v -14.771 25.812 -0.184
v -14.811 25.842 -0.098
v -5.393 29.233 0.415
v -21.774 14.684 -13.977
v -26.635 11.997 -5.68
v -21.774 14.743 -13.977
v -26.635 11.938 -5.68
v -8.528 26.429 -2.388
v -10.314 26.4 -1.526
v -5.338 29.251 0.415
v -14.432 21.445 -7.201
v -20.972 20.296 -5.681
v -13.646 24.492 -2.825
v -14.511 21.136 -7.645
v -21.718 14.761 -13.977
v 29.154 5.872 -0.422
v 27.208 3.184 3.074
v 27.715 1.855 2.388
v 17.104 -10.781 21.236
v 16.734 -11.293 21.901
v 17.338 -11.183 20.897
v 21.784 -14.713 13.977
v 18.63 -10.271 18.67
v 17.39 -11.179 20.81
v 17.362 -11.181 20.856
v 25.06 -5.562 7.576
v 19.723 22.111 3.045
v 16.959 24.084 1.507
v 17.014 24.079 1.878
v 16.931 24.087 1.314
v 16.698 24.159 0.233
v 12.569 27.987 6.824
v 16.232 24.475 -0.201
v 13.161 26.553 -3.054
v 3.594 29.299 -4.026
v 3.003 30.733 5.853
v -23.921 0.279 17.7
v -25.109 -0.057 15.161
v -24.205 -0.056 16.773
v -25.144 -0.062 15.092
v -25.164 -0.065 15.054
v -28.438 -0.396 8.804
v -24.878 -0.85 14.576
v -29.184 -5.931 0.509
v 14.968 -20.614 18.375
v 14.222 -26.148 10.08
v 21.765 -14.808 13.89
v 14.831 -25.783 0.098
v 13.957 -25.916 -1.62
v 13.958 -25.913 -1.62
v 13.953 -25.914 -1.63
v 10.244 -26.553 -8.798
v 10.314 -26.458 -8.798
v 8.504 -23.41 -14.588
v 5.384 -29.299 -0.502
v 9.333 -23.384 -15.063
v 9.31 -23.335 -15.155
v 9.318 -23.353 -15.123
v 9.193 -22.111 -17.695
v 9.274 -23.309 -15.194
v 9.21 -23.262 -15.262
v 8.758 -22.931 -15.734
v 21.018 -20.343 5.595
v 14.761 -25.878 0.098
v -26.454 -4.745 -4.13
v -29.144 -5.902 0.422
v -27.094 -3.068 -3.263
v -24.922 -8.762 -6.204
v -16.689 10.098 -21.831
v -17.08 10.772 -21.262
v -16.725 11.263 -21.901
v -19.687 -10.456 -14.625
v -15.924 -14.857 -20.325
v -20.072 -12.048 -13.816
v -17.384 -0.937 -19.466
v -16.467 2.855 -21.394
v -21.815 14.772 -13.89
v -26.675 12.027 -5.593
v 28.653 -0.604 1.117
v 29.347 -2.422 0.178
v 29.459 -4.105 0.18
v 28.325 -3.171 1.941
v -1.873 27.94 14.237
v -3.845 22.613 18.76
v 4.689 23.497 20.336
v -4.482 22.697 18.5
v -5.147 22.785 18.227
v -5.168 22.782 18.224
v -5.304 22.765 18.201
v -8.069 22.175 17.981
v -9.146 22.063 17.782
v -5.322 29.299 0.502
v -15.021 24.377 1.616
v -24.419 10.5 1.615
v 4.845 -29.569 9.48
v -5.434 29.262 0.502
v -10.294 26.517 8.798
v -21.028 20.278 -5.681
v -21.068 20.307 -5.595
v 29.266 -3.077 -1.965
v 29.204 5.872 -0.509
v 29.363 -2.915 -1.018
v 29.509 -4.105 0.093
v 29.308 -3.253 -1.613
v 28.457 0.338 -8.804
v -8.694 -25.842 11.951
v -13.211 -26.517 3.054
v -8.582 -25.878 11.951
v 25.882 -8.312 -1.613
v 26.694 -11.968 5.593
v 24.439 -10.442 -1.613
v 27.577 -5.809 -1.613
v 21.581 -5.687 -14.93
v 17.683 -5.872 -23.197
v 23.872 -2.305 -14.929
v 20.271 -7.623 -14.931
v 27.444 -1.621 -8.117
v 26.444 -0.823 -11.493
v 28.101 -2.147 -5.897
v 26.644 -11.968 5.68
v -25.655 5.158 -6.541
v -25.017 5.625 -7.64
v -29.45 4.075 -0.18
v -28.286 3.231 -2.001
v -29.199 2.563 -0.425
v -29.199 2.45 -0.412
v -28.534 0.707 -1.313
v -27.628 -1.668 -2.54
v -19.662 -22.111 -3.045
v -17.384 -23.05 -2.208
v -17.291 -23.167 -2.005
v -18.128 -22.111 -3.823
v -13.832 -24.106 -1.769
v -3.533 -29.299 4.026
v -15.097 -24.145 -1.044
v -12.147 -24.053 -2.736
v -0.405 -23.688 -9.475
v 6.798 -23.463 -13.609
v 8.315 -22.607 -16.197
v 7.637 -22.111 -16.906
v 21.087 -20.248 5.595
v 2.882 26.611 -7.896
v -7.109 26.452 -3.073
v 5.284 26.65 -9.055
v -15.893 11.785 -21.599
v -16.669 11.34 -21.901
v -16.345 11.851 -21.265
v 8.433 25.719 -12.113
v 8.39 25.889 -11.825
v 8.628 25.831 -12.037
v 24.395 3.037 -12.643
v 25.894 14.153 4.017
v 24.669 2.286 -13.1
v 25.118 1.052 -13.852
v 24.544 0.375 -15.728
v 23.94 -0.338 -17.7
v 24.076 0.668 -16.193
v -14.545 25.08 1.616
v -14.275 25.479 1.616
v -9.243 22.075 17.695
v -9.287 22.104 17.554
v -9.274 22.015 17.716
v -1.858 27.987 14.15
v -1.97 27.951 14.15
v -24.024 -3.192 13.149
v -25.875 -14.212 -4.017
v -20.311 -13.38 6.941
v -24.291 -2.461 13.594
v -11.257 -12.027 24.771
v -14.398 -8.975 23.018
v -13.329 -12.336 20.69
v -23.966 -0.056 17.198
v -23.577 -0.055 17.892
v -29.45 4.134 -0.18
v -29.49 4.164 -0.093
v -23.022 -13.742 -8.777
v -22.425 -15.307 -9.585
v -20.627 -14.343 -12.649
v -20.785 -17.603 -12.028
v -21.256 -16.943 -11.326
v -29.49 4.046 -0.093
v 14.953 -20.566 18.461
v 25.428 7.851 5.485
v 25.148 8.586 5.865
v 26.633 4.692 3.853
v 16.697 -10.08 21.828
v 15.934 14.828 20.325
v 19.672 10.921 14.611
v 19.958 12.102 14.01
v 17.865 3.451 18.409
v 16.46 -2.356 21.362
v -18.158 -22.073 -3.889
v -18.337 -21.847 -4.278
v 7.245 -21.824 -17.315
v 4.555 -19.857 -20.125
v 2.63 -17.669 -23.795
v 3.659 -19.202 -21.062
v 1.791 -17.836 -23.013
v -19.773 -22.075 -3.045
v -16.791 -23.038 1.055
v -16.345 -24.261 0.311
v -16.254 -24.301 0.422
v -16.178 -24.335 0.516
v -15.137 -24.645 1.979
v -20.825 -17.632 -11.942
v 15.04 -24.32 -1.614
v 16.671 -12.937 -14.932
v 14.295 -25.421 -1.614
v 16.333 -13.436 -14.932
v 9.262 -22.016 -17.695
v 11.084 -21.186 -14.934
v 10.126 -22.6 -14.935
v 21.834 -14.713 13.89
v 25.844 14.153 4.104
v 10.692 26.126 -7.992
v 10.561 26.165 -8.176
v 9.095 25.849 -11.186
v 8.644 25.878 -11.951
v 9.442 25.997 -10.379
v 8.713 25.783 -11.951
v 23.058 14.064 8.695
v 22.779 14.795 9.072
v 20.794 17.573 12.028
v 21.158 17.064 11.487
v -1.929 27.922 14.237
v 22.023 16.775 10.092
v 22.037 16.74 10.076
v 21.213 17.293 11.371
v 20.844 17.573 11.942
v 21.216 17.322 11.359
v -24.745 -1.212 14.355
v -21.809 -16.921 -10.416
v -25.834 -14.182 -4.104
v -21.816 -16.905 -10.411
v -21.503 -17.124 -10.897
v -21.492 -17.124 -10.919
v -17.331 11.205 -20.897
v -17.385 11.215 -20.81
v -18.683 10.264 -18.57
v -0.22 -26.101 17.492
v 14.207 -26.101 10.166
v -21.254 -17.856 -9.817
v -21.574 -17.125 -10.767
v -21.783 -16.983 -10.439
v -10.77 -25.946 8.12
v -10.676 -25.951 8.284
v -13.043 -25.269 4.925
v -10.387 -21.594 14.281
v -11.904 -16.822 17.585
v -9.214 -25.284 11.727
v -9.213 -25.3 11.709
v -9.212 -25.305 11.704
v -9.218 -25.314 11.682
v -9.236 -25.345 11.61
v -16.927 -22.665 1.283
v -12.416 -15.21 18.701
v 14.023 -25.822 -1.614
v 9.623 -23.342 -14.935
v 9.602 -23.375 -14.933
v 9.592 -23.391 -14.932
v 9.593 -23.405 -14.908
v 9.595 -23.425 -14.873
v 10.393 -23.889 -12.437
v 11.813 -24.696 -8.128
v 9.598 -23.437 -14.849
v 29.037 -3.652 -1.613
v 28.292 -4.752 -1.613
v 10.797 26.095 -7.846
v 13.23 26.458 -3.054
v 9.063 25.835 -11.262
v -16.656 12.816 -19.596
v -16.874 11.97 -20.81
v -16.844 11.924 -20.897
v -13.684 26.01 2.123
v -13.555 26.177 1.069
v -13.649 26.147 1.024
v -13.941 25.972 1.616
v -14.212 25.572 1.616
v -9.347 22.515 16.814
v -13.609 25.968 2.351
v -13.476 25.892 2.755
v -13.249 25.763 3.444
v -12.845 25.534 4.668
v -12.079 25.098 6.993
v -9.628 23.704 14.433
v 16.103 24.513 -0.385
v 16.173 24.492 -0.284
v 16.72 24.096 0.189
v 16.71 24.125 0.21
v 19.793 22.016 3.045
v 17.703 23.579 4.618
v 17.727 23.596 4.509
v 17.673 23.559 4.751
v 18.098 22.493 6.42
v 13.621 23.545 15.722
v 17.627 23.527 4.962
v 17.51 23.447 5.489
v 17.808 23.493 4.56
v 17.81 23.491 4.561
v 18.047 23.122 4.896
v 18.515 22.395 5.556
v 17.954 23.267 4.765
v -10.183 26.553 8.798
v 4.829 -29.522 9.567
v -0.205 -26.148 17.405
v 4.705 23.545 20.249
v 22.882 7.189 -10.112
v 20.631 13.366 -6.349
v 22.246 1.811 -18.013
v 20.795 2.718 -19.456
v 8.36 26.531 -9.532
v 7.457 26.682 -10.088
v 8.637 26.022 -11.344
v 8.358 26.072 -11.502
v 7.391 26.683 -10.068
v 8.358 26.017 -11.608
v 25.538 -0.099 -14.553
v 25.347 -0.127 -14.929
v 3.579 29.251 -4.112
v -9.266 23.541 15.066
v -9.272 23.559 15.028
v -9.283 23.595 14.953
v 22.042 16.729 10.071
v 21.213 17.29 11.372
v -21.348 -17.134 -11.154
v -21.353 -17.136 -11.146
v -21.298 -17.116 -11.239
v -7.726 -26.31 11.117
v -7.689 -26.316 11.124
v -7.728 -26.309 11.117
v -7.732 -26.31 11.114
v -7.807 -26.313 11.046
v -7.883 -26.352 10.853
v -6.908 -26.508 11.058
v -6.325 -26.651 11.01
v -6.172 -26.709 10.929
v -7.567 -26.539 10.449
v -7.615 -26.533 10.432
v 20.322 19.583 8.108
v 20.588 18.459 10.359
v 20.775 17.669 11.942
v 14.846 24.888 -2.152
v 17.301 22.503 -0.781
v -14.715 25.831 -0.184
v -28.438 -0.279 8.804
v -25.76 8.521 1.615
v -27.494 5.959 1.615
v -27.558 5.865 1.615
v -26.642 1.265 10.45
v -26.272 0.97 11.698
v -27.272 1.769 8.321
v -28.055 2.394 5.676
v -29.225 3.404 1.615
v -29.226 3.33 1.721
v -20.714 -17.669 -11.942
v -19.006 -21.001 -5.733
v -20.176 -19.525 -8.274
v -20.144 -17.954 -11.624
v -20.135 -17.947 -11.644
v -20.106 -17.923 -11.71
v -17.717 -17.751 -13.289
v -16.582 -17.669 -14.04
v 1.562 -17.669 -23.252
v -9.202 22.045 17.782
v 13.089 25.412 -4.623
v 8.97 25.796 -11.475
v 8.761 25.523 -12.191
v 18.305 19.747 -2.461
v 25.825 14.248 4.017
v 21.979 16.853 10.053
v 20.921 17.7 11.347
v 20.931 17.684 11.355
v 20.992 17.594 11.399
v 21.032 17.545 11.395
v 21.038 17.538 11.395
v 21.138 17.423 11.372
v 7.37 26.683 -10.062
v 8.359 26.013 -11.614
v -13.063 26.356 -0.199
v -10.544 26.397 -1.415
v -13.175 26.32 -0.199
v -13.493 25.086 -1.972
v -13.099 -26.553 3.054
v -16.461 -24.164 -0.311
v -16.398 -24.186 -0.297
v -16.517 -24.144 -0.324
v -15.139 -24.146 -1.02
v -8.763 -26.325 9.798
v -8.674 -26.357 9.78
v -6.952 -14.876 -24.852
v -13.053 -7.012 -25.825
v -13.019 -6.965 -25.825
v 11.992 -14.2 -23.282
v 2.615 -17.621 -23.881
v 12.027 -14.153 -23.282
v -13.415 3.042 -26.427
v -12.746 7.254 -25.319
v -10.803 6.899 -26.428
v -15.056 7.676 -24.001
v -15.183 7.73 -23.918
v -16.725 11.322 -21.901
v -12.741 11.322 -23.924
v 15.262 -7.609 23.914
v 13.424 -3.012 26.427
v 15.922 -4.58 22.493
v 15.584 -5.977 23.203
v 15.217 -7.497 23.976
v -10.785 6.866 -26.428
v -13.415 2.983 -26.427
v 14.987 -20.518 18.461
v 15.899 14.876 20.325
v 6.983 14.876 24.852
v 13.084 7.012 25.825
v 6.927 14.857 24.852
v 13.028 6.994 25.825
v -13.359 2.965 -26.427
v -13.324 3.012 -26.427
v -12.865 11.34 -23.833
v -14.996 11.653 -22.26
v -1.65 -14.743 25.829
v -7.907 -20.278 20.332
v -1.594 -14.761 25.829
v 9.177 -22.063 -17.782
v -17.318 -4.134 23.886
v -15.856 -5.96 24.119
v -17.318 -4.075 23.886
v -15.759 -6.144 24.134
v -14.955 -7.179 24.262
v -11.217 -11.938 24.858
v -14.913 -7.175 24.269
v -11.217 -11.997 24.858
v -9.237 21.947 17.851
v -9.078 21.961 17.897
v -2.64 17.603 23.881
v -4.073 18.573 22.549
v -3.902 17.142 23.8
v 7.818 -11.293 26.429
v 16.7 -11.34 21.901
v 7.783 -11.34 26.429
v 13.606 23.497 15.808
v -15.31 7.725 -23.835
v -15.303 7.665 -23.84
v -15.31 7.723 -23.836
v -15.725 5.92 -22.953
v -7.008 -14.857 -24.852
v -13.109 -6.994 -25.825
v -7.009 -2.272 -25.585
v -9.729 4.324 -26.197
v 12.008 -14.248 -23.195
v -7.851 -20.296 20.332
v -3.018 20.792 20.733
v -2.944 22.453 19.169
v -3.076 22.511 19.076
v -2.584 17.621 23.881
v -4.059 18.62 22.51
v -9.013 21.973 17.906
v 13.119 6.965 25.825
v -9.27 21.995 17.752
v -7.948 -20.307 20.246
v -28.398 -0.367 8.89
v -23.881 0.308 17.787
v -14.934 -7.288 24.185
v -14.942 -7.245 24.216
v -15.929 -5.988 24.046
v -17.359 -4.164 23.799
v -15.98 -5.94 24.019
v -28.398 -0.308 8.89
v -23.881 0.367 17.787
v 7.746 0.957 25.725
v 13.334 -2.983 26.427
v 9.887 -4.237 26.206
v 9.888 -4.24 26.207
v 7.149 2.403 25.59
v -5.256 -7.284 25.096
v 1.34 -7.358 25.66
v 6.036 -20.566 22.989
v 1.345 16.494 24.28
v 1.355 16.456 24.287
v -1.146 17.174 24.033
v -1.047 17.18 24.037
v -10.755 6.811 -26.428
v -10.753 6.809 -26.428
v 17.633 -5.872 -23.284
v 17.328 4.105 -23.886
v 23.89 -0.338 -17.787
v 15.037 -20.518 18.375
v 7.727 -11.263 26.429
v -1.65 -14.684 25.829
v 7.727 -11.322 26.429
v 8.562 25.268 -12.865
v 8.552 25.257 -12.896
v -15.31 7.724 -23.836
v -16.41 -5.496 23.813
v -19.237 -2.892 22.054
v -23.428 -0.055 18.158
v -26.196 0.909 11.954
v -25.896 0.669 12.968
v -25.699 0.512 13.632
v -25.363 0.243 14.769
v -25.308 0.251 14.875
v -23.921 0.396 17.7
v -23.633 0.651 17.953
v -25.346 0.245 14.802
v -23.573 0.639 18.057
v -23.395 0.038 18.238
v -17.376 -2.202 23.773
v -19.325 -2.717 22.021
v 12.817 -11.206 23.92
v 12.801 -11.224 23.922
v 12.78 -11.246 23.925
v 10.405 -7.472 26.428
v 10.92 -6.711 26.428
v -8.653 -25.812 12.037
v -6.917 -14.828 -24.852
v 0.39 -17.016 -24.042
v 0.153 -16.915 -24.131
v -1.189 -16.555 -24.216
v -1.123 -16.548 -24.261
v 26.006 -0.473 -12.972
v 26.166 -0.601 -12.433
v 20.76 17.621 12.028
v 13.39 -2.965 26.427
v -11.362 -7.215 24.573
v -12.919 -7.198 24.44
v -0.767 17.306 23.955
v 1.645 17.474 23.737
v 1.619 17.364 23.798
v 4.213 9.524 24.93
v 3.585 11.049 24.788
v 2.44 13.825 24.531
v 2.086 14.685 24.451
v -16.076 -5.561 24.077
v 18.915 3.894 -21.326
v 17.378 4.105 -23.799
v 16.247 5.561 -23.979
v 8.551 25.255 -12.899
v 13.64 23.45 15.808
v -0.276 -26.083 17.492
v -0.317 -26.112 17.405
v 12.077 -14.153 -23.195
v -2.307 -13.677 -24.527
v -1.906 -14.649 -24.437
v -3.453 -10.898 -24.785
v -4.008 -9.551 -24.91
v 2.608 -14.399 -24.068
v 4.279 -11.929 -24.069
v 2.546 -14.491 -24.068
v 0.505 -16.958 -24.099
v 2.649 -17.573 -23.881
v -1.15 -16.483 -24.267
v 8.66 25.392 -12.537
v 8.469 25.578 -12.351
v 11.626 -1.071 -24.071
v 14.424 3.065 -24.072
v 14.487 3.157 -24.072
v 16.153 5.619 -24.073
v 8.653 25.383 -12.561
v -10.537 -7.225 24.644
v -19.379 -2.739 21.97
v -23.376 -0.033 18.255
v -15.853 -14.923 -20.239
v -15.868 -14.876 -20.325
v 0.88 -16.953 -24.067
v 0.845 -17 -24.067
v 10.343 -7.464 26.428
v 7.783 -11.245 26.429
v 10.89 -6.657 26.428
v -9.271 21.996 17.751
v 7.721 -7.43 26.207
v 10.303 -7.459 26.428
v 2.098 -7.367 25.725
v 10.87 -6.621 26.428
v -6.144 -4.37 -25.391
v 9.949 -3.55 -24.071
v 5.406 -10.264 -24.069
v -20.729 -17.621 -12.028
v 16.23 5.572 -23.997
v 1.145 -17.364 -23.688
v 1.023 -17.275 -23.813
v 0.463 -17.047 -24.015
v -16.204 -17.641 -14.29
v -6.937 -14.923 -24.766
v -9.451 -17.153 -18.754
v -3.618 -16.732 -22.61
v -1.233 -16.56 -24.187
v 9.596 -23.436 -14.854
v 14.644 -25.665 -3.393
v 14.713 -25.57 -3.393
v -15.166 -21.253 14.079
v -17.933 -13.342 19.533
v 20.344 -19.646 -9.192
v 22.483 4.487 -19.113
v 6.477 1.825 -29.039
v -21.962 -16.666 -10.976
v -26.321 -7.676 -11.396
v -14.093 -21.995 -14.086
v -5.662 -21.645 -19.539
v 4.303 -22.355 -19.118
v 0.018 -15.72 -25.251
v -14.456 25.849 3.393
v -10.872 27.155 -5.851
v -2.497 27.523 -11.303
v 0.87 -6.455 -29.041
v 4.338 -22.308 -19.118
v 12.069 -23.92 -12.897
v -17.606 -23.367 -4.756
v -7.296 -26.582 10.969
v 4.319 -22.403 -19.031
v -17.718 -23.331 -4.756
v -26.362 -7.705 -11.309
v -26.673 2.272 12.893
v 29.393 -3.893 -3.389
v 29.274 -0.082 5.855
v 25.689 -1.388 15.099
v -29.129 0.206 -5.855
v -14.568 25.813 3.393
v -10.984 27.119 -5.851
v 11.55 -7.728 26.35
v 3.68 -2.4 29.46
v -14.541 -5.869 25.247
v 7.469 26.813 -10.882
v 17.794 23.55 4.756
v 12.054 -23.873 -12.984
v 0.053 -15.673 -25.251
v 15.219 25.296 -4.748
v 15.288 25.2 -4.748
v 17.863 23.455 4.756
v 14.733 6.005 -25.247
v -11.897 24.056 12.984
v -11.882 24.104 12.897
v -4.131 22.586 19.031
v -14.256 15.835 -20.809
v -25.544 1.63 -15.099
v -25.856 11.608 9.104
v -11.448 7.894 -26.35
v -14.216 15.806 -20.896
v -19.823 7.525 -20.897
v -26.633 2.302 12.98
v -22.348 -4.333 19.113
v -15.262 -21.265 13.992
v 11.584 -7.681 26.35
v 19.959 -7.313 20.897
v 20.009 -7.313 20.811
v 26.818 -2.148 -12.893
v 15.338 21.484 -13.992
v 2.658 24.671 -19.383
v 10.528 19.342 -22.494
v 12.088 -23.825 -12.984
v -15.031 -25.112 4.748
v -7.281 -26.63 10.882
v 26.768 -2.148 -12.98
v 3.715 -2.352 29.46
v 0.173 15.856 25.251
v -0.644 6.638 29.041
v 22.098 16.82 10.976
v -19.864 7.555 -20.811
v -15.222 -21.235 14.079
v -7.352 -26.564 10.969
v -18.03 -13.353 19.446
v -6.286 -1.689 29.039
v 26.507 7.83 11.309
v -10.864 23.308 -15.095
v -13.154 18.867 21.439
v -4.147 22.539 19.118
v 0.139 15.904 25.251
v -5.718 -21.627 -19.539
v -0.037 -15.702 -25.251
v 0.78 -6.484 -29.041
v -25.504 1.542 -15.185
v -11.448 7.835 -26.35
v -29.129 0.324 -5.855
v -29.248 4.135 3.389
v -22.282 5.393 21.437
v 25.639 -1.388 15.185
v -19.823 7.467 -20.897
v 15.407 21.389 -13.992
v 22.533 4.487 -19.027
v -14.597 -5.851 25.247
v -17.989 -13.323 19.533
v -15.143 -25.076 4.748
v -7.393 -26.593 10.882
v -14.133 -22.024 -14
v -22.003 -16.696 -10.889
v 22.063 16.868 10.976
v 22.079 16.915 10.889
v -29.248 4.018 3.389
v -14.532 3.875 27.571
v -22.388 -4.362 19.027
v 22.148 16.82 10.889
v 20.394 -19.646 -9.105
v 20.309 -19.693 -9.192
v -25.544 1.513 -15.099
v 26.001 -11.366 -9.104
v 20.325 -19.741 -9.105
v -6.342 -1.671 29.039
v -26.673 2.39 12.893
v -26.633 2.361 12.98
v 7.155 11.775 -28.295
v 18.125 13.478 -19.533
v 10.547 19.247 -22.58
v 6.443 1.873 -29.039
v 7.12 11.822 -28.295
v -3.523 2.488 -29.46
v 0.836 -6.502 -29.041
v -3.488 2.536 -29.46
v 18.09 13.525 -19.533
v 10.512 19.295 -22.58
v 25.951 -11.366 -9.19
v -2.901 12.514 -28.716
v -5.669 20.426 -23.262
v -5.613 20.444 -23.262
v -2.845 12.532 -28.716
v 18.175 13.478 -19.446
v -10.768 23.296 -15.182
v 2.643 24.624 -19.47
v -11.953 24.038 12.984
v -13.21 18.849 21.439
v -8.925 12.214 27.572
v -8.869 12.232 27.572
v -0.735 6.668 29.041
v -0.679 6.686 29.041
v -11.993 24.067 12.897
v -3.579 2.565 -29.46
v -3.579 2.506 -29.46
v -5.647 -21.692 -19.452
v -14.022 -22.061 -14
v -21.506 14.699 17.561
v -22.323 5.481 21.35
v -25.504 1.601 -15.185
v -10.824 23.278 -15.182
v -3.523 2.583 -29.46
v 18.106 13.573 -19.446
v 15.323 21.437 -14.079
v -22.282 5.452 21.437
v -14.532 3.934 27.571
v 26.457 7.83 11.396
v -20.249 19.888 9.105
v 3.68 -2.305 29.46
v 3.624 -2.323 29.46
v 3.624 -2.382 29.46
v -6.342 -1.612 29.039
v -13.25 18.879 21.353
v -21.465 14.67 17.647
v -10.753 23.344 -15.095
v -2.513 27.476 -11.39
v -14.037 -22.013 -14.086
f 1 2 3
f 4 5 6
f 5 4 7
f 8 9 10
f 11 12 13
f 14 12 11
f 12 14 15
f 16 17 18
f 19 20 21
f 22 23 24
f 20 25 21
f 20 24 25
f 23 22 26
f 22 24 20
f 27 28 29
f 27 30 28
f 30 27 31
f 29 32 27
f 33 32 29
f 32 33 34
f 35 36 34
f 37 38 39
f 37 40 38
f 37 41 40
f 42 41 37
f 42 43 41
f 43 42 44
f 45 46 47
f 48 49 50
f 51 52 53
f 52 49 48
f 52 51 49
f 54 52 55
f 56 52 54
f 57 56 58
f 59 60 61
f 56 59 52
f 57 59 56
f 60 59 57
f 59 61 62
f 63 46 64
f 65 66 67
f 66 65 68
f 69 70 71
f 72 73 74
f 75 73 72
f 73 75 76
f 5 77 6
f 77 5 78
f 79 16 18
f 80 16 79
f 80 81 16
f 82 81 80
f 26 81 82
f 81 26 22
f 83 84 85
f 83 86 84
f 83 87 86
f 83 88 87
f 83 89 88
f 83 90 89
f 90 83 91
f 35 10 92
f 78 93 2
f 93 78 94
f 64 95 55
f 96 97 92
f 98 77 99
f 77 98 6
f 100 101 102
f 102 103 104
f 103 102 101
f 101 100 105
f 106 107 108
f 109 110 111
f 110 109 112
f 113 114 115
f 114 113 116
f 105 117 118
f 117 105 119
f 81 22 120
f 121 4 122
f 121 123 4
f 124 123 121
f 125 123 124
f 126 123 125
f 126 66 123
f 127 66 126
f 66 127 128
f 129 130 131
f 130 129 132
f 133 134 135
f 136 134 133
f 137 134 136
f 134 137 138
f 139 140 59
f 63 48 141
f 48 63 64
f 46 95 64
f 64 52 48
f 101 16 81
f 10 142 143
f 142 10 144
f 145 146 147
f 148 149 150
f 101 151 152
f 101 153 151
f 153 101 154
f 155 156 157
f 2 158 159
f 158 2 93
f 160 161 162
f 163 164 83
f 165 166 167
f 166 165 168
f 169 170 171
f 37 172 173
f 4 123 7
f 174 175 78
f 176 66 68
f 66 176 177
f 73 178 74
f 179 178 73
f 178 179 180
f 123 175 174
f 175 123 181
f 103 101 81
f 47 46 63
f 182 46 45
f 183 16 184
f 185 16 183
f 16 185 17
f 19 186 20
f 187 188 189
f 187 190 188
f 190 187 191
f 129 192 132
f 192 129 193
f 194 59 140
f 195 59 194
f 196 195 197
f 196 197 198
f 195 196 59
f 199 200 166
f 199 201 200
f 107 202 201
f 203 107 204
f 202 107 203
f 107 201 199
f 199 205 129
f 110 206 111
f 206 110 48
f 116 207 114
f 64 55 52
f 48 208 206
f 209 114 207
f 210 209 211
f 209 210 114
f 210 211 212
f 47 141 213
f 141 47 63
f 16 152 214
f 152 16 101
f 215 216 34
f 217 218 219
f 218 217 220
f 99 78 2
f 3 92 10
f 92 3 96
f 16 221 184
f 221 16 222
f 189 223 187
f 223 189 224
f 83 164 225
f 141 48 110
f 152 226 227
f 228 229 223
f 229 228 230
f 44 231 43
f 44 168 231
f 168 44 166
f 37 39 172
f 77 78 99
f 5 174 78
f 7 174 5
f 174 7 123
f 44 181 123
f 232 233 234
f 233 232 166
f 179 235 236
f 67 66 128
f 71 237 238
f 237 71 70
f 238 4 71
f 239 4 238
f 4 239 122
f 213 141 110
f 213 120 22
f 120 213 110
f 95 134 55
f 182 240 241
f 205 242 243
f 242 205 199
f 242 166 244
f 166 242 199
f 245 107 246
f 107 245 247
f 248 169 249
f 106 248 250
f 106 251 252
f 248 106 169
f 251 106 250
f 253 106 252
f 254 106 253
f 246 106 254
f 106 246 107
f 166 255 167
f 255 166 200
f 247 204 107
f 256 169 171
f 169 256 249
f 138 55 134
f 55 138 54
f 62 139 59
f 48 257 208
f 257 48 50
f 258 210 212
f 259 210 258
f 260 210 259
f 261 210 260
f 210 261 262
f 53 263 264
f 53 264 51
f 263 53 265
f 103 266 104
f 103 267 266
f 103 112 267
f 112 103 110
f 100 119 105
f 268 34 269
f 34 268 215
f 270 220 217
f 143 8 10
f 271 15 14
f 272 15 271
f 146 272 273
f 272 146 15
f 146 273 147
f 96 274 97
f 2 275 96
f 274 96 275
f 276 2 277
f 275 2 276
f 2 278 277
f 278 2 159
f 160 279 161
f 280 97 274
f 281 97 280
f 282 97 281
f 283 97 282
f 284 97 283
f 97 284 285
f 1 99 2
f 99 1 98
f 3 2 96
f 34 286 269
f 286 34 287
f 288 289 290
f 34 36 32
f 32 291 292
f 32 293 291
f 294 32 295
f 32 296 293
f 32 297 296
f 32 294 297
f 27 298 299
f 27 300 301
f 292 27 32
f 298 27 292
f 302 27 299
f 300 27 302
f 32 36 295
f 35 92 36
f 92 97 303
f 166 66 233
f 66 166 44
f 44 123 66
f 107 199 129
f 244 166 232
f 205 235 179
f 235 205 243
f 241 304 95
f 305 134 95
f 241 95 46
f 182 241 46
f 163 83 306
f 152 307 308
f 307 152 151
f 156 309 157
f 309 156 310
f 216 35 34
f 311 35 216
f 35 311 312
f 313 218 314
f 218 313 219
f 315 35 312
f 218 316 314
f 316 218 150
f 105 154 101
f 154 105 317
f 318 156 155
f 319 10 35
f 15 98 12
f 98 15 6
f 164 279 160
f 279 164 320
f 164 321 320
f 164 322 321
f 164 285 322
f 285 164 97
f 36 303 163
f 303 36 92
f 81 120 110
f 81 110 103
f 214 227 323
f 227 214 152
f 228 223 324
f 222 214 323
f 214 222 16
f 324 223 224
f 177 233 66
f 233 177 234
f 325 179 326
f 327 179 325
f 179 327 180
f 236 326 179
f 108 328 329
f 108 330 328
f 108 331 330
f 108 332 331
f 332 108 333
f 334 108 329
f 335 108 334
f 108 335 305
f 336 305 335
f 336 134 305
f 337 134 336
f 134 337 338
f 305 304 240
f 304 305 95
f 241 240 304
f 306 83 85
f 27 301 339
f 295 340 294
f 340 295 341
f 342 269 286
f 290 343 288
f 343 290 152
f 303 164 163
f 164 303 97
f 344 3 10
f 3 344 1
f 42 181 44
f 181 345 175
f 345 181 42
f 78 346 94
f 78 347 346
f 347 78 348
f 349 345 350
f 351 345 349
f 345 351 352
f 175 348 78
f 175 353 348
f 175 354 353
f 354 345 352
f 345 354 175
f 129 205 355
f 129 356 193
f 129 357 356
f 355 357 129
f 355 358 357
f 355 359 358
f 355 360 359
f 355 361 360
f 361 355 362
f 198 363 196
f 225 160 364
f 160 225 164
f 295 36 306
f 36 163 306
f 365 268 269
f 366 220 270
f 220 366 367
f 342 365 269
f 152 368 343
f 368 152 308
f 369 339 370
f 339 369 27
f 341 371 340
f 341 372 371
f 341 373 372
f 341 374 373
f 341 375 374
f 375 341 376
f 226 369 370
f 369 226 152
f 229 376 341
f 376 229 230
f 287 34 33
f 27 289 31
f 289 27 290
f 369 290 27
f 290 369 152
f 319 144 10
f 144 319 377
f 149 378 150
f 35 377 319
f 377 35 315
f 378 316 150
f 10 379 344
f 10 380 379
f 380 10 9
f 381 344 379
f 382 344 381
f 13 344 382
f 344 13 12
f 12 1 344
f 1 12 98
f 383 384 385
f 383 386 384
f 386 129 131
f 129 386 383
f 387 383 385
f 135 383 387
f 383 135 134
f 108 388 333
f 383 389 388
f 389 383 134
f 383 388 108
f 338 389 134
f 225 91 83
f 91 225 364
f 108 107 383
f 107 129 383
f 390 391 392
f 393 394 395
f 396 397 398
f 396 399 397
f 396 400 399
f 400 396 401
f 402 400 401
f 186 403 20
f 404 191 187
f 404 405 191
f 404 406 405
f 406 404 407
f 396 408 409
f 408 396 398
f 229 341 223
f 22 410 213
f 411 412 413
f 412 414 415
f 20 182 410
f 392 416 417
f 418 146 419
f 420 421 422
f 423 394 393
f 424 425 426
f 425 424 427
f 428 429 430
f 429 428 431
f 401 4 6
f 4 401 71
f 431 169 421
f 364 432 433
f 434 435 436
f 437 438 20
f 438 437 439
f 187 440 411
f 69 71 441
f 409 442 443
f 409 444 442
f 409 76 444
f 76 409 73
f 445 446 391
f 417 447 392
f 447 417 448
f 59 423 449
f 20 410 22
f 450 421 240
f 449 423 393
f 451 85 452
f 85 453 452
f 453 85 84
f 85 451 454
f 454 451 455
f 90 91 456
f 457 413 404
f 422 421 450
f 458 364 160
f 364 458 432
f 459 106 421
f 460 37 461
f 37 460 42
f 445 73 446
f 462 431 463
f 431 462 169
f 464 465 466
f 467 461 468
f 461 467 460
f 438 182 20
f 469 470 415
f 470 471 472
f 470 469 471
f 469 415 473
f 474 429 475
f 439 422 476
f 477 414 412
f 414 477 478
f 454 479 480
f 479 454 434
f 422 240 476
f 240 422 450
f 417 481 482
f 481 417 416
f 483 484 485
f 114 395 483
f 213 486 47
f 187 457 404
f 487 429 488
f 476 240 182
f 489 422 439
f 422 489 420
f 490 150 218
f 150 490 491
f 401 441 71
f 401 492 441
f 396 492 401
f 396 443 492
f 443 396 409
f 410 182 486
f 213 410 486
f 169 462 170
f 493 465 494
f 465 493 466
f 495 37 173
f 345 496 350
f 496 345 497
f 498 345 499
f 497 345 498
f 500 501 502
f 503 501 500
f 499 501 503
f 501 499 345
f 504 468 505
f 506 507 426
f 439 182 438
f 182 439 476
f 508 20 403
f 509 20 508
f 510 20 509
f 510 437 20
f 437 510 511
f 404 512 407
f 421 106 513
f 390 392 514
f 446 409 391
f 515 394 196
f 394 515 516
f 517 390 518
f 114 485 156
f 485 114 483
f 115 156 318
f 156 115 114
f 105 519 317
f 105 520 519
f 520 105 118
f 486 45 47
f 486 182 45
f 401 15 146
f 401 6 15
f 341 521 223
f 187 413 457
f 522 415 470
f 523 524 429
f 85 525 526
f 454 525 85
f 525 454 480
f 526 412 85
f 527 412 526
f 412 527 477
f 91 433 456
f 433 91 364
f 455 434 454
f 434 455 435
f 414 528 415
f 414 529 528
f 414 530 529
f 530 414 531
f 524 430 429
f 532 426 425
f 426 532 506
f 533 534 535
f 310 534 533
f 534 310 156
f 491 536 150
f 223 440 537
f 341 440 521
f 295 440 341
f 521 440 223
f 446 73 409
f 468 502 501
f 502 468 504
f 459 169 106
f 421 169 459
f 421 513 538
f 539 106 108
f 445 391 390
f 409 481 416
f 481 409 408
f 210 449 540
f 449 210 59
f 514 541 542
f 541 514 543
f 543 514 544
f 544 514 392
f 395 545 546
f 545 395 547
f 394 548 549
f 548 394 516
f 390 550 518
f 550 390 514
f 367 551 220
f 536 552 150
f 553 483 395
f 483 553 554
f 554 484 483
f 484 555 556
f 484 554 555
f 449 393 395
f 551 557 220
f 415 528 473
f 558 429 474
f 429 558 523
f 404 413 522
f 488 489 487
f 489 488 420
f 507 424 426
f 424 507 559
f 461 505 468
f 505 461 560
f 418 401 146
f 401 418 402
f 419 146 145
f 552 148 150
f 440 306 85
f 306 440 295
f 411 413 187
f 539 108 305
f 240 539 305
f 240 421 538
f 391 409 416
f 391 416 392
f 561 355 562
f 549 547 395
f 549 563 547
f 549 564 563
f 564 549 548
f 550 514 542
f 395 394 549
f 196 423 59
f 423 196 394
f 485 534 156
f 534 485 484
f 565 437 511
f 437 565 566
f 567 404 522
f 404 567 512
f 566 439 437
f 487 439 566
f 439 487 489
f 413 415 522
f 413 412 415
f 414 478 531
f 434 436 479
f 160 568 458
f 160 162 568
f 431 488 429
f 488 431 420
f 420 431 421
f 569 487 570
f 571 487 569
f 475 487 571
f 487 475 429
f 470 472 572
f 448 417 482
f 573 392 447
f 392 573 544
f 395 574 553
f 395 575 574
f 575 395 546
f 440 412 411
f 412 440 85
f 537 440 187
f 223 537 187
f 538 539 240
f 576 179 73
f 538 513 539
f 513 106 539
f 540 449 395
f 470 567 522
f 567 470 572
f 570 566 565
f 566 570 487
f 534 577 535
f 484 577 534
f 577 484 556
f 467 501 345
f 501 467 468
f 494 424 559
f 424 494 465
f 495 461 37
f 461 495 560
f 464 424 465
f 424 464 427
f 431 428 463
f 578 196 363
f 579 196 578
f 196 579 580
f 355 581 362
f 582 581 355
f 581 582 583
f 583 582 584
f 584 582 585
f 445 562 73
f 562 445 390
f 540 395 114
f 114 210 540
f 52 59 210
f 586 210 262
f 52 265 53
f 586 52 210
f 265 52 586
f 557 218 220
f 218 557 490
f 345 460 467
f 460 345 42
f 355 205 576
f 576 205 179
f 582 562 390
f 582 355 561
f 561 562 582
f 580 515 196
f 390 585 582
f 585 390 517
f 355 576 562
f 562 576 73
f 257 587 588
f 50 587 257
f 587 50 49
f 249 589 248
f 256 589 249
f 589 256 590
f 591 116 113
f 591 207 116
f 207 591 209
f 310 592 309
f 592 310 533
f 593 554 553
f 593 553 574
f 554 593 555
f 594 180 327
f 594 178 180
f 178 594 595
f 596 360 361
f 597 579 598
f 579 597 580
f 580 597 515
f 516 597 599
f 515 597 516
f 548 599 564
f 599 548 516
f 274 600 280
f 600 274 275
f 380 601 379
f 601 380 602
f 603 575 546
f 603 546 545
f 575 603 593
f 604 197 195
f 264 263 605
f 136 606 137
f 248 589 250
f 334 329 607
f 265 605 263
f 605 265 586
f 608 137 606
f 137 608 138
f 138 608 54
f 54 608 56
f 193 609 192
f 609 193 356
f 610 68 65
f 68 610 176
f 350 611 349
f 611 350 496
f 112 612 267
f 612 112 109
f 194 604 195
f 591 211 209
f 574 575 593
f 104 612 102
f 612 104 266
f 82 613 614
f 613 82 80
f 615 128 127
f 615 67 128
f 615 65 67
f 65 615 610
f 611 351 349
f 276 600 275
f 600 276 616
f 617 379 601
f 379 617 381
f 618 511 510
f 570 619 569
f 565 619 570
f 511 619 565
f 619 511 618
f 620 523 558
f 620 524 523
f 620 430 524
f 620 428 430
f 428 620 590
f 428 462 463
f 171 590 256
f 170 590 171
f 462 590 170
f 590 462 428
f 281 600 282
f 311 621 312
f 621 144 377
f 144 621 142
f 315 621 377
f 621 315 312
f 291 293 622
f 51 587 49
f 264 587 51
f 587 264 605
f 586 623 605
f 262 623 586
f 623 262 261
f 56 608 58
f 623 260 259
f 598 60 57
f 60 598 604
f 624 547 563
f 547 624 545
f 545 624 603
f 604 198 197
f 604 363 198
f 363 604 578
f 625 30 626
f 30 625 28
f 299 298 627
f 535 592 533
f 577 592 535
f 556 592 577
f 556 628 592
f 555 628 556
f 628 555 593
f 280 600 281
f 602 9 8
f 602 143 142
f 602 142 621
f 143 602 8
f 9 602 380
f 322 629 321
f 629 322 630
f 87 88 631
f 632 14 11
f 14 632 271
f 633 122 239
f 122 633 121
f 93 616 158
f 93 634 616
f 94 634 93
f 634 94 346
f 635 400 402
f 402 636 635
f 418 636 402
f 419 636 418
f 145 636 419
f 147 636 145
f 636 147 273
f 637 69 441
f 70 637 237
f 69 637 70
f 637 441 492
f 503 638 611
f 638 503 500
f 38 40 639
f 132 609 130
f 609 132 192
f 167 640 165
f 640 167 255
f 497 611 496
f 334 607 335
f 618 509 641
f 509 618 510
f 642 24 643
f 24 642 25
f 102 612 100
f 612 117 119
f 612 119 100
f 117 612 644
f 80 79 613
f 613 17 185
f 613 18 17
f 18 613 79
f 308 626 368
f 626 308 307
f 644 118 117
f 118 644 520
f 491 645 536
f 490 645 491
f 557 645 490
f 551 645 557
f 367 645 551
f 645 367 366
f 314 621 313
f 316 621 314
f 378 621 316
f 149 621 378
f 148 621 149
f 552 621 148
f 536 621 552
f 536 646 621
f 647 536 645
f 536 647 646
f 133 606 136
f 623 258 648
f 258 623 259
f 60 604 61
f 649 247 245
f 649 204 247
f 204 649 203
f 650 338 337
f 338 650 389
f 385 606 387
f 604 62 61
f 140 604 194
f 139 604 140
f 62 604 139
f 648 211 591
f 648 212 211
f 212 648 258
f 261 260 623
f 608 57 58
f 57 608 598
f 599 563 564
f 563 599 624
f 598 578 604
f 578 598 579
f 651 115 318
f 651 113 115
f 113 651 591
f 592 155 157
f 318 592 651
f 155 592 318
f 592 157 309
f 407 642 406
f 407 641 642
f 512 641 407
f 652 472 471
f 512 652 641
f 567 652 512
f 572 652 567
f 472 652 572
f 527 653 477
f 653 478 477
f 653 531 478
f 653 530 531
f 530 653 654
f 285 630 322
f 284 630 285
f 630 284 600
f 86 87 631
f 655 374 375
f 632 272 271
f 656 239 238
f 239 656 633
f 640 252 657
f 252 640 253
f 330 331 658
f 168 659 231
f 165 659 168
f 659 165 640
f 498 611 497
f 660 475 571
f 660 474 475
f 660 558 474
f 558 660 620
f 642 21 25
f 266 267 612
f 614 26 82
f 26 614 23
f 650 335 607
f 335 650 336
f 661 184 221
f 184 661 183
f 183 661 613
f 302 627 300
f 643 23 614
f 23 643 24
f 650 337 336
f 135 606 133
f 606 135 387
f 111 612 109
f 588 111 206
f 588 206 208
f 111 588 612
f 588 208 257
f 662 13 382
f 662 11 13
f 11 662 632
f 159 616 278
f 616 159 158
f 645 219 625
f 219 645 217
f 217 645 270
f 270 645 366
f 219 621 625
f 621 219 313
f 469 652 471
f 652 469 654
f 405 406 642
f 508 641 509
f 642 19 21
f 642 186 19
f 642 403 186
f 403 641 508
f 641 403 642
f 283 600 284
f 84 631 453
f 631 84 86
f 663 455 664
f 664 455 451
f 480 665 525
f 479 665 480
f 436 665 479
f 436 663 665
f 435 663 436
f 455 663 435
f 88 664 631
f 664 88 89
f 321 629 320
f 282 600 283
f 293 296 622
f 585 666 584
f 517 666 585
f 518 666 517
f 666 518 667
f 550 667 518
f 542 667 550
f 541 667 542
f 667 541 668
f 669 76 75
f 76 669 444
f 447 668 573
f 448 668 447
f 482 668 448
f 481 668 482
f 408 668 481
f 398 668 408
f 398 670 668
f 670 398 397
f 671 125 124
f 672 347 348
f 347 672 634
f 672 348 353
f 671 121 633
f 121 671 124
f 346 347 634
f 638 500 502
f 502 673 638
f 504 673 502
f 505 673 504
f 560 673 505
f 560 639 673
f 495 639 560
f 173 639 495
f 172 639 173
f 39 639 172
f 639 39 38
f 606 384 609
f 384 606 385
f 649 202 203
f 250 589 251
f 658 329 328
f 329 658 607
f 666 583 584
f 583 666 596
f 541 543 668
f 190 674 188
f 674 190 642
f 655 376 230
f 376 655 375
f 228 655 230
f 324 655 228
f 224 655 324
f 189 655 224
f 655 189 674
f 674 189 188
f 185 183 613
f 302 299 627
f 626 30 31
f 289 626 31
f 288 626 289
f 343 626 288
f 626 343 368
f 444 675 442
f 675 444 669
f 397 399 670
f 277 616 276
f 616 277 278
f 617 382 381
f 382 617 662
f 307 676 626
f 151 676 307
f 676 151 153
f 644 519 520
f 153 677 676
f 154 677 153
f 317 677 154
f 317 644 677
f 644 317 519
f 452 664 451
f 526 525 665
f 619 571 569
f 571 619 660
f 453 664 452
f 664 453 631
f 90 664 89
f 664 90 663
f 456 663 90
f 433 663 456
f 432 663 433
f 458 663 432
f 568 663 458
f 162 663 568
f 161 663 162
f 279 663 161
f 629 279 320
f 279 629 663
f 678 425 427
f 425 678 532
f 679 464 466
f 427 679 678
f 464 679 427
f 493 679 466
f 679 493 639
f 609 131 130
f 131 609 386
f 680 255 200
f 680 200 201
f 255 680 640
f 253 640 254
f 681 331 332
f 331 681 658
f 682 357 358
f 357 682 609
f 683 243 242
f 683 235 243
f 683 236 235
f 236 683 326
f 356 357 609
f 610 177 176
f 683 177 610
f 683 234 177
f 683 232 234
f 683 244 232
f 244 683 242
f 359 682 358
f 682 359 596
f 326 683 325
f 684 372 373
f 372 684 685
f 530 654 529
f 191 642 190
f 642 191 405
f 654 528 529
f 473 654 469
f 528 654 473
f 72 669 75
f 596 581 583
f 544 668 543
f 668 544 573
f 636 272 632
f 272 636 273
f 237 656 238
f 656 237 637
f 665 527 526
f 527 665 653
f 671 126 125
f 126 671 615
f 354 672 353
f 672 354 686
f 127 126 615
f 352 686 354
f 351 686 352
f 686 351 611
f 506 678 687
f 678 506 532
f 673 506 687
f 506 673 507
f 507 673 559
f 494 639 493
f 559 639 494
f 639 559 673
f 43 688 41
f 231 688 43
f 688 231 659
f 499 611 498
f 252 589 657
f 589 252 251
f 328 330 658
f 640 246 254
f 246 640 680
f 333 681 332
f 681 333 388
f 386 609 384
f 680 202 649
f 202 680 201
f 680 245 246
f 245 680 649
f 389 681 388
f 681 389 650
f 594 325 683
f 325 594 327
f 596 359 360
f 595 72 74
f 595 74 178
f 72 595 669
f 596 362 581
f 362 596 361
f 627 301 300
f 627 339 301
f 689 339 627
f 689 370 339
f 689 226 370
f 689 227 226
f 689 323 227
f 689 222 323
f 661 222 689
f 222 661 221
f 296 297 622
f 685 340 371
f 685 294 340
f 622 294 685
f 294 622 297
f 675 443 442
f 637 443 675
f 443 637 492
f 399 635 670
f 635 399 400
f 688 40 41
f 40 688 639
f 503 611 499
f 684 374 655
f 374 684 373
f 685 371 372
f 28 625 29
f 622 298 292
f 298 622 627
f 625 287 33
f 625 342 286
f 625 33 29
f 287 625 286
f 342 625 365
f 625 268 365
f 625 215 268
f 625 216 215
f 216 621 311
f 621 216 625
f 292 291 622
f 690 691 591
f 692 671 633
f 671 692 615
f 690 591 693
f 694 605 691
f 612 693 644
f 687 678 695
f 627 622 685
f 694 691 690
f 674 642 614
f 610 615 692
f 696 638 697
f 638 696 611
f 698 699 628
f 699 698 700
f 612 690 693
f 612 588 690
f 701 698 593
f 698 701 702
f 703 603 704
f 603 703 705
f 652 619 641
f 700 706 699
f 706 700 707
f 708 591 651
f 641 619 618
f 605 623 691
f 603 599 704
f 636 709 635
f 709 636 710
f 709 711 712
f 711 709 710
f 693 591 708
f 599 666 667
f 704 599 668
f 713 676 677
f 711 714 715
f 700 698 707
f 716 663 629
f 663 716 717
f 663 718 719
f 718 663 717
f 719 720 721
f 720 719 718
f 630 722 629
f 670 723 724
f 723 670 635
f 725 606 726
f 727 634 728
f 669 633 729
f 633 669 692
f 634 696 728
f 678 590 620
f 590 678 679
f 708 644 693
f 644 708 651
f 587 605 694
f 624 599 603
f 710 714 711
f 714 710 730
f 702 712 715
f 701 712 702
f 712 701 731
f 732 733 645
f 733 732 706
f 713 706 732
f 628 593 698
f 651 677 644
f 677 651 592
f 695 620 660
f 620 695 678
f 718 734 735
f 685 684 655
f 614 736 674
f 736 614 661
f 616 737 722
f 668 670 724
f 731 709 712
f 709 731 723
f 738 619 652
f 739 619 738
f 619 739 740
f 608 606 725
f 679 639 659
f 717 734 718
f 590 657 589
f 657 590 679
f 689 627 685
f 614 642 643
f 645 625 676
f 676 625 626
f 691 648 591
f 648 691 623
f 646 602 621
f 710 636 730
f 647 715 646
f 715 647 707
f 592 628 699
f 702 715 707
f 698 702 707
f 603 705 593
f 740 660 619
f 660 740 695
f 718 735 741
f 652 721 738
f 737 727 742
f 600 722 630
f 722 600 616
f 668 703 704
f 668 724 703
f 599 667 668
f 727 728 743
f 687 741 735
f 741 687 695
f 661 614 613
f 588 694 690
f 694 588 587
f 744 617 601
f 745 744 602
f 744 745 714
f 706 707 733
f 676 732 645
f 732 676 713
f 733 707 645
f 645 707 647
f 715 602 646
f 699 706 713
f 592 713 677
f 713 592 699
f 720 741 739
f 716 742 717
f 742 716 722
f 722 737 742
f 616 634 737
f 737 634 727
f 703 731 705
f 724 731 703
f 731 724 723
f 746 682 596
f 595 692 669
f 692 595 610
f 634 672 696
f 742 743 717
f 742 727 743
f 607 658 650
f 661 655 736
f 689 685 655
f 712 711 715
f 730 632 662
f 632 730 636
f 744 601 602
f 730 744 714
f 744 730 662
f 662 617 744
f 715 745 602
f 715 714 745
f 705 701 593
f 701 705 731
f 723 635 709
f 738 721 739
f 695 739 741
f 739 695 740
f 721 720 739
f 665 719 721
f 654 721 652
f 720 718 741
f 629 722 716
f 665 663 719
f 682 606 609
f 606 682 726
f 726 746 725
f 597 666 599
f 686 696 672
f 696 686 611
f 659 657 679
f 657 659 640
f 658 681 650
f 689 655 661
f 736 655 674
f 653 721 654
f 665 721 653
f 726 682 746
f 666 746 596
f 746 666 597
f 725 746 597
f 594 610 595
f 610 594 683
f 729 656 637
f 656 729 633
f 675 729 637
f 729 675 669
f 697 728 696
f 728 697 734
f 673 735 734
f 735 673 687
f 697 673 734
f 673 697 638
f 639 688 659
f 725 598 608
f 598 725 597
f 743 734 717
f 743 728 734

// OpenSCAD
// Auto-generated OpenSCAD file

    inner_points = 10*[[-1.4487143990499982, 2.5753825704945696, 0.3393075595010162], [1.102866452168368, -2.6876538321967396, 0.585057055716785], [-1.090261602560301, 2.7060028247507986, -0.585057055716785], [1.4613192486580653, -2.5570335779405107, -0.3393075595010162], [-2.628060976189026, -0.7646488526687646, -1.130908640848898], [-2.192198931774896, -1.6636828006652273, -1.0889296152643466], [2.2048037813829633, 1.6820317932192868, 1.0889296152643466], [2.640665825797093, 0.782997845222824, 1.130908640848898], [-1.4556831147710878, -0.5821291224034855, 2.5160655338088227], [0.6427361059669467, 0.18253516486993837, -2.8952591776693413], [-0.6301312563588797, -0.16418617231587906, 2.8952591776693413], [1.4682879643791549, 0.6004781149575449, -2.5160655338088227], [-2.0167959533705173, 1.9829203214969908, 0.9105096525937446], [0.26540733999390004, -2.724482544292499, 1.1303146841836589], [-1.078354348798041, 2.3248885867589517, -1.5095083280441774], [1.2038489445663763, -2.3825142790305383, -1.2897032964542632], [-1.1912440949583092, 2.4008632715845972, 1.2897032964542632], [1.090959198406108, -2.3065395942048927, 1.5095083280441774], [-0.25280249038583286, 2.742831536846558, -1.1303146841836589], [2.0294008029785844, -1.9645713289429314, -0.9105096525937446], [-2.904797621580721, 0.026526236908532792, -0.5855107982333385], [-1.7636959748985122, -2.327175195986212, -0.47560828243838127], [-2.5463448250910243, 0.15714649116476193, -1.5098754134511396], [-1.4052431784088153, -2.1965549417299832, -1.3999728976561825], [1.4178480280168824, 2.214903934284042, 1.3999728976561825], [2.5589496746990914, -0.13879749861070262, 1.5098754134511396], [1.7763008245065792, 2.345524188540271, 0.47560828243838127], [2.917402471188788, -0.008177244354473472, 0.5855107982333385], [-2.230731614374909, -0.43037121933057704, 1.902657543873266], [-1.7948695699607788, -1.3294051673270397, 1.9446365694578178], [-0.353848405229956, 0.2535653111933443, -2.937378417402578], [0.08201363918417413, -0.6454686368031184, -2.8953993918180263], [-0.06940878957610698, 0.6638176293571778, 2.8953993918180263], [0.36645325483802316, -0.23521631863928497, 2.937378417402578], [1.807474419568846, 1.3477541598810991, -1.9446365694578178], [2.2433364639829763, 0.44872021188463634, -1.902657543873266], [-2.5775184201532904, 1.1549165198239344, 0.910369438445059], [-0.7311771712030029, -2.653452397969093, 1.088195444450422], [-1.4175408039877317, 1.5776125418353975, -2.0809372923951823], [0.4288004449625556, -2.23075637595763, -1.9031112863898194], [-0.4161955953544884, 2.249105368511689, 1.9031112863898194], [1.4301456535957988, -1.559263549281338, 2.0809372923951823], [0.7437820208110699, 2.671801390523152, -1.088195444450422], [2.5901232697613574, -1.136567527269875, -0.910369438445059], [-2.916704875342981, 0.4076404749003801, 0.33894047409405403], [-1.506225670806824, -2.5016944948961846, 0.4747874545148656], [-1.9782632707705046, 0.7496087401623407, -2.081077506543868], [-0.5677840662343473, -2.159726229634224, -1.9452305261230565], [0.5803889158424144, 2.178075222188283, 1.9452305261230565], [1.9908681203785716, -0.7312597476082813, 2.081077506543868], [1.518830520414891, 2.5200434874502435, -0.4747874545148656], [2.929309724951048, -0.38929148234632077, -0.33894047409405403], [-2.659234571251292, 0.23312117599040766, 1.289336211047301], [-1.5181329245690836, -2.1205802569043377, 1.3992387268422581], [-1.140804158596037, 0.7864374522581001, -2.6263351350107422], [0.0002974880861718451, -1.5672639806366448, -2.516432619215785], [0.012307361521895308, 1.5856129731907043, 2.516432619215785], [1.153409008204104, -0.7680884597040407, 2.6263351350107422], [1.5307377741771506, 2.1389292494583967, -1.3992387268422581], [2.671839420859359, -0.21477218343634835, -1.289336211047301], [-2.2241986003144585, 0.5422344662013506, 2.1350268624122144], [-0.28608434351159595, 1.2484835999237276, -2.8629094259414605], [-0.8884276339278647, 1.218480364801499, 2.748575066496456], [1.0496866228749977, 1.9247294985238759, -2.2493612218572188], [-2.1424824492164563, 1.4640298100348774, 1.7560600898099725], [-0.5628209889032914, 2.039658689501025, -2.317511583325901], [-1.3169305908042483, 1.8819727601224838, 2.135253733670491], [0.26273086950891694, 2.4576016395886318, -1.9383179394653824], [-1.4491501007106375, 0.39047656312844187, 2.7484348523477706], [0.7105001676853069, 1.1774534536003218, -2.820790186208224]];

    outer_points = 10*[[1.306878914065968, 0.6964890807624852, 2.5738294275574076], [-1.3374470976514352, 0.3012289421252946, -2.6340318607074473], [1.3374470976514352, -0.3012289421252946, 2.6340318607074473], [-1.306878914065968, -0.6964890807624852, -2.5738294275574076], [2.8357387496386, 0.03375924615901473, -0.8803825957553844], [2.3840339404359963, -0.03375924615901473, -1.76999150900791], [-2.3840339404359963, 0.03375924615901473, 1.76999150900791], [-2.8357387496386, -0.03375924615901473, 0.8803825957553844], [0.3563471799807295, 2.92037151977505, -0.40258456455588854], [0.5352964436130941, -2.92037151977505, -0.05015338227922686], [-0.5352964436130941, 2.92037151977505, 0.05015338227922686], [-0.3563471799807295, -2.92037151977505, 0.40258456455588854], [1.5883860833705659, 1.4827955553120262, 2.0238513900762873], [-0.7767710033778418, 1.1292641397965266, -2.6342013531036494], [1.6684146269716655, -1.1292641397965266, 2.1814634062685343], [-0.6967424597767421, -1.4827955553120262, -2.4765893369114025], [0.6967424597767421, 1.4827955553120262, 2.4765893369114025], [-1.6684146269716655, 1.1292641397965266, -2.1814634062685343], [0.7767710033778418, -1.1292641397965266, 2.6342013531036494], [-1.5883860833705659, -1.4827955553120262, -2.0238513900762873], [2.9103584923151162, 0.5872418653227648, -0.05087136359121058], [1.7277799489409125, 0.410476157565015, -2.3798977351811788], [2.9409266759005837, -0.410476157565015, 0.00933106955882912], [1.75834813252638, -0.5872418653227648, -2.319695302031139], [-1.75834813252638, 0.5872418653227648, 2.319695302031139], [-2.9409266759005837, 0.410476157565015, -0.00933106955882912], [-1.7277799489409125, -0.410476157565015, 2.3798977351811788], [-2.9103584923151162, -0.5872418653227648, 0.05087136359121058], [1.3130005172105763, 2.6458189412675677, -0.30544922597157165], [0.8612957080079724, 2.578300448949538, -1.195058139224097], [1.4730576044127757, -2.578300448949538, 0.009774806412922166], [1.0213527952101717, -2.6458189412675677, -0.8798341068396033], [-1.0213527952101717, 2.6458189412675677, 0.8798341068396033], [-1.4730576044127757, 2.578300448949538, -0.009774806412922166], [-0.8612957080079724, -2.578300448949538, 1.195058139224097], [-1.3130005172105763, -2.6458189412675677, 0.30544922597157165], [2.074442434967643, 1.7573481338195083, 1.194170665515911], [0.16099015742183997, 1.4713352106220383, -2.5742731644115002], [2.173363154998908, -1.4713352106220383, 1.3889898316003255], [0.2599108774531048, -1.7573481338195083, -2.3794539983270857], [-0.2599108774531048, 1.7573481338195083, 2.3794539983270857], [-2.173363154998908, 1.4713352106220383, -1.3889898316003255], [-0.16099015742183997, -1.4713352106220383, 2.5742731644115002], [-2.074442434967643, -1.7573481338195083, -1.194170665515911], [2.579390962994886, 1.4152770629939968, 0.40169709084770233], [1.1176434946516864, 1.196782632114556, -2.477137825827184], [2.659419506595986, -1.196782632114556, 0.5593091070399493], [1.1976720382527861, -1.4152770629939968, -2.319525809634937], [-1.1976720382527861, 1.4152770629939968, 2.319525809634937], [-2.659419506595986, 1.196782632114556, -0.5593091070399493], [-1.1176434946516864, -1.196782632114556, 2.477137825827184], [-2.579390962994886, -1.4152770629939968, -0.40169709084770233], [1.96925450870566, 2.201583537543538, 0.3044570002016973], [0.7866759653314565, 2.024817829785788, -2.024569371388271], [2.0987434123223925, -2.024817829785788, 0.5594785994361517], [0.9161648689481887, -2.201583537543538, -1.7695477721538164], [-0.9161648689481887, 2.201583537543538, 1.7695477721538164], [-2.0987434123223925, 2.024817829785788, -0.5594785994361517], [-0.7866759653314565, -2.024817829785788, 2.024569371388271], [-1.96925450870566, -2.201583537543538, -0.3044570002016973], [1.2538486107021445, 2.7892218999452805, 0.6824458309038517], [1.4191273670453497, -2.6053280752940653, 1.0079536665936386], [-0.18886107812477992, 2.7892218999452805, 1.4149912168799113], [-0.02358232178157471, -2.6053280752940653, 1.7404990525696982], [1.3590365369641275, 2.3449864962212508, 1.5721594962180654], [1.4937471097218653, -2.0518454561303154, 1.837464898757812], [0.467392913370304, 2.3449864962212508, 2.0248974430531805], [0.6021034861280418, -2.0518454561303154, 2.290202845592927], [0.29719527347229757, 3.0637744784527623, 0.5853104923195349], [0.481366206245668, -2.9473991461195768, 0.9480254779014893]];

    // Convex hull for inner set (I)
    module inner_hull() {
        hull() {
            for (p = inner_points) {
                translate(p) sphere(r=0.1);
            }
        }
    }

    // Convex hull for outer set (O) minus inner hull (O \ I)
    module outer_minus_inner() {
        difference() {
            hull() {
                for (p = outer_points) {
                    translate(p) sphere(r=0.1);
                }
            }
            inner_hull(); // Subtract inner hull
        }
    }

    // Convex hull for outer set (O) minus all translated inner hulls
    module outer_minus_AllTranslationInner() {
        difference() {
            hull() {
                for (p = outer_points) {
                    translate(p) sphere(r=0.1);
                }
            }
            hull() {
                translate([0,0,50]) inner_hull();
                translate([0,0,-50]) inner_hull();
            }; // Subtract translated inner hulls
        }
    }

    // Difference between outer_minus_inner and outer_minus_AllTranslationInner
    module outer_minus_inner_diff() {
        difference() {
            // Outer minus inner
            difference() {
                hull() {
                    for (p = outer_points) {
                        translate(p) sphere(r=0.1);
                    }
                }
                inner_hull();
            }

            // Subtract Outer minus AllTranslationInner
            difference() {
                hull() {
                    for (p = outer_points) {
                        translate(p) sphere(r=0.1);
                    }
                }
                hull() {
                    translate([0,0,50]) inner_hull();
                    translate([0,0,-50]) inner_hull();
                };
            }
        }
    }

    // Rendering all with colors applied
    color([1, 0, 0, 0.5]) inner_hull(); // Transparent red
    color([0, 1, 0, 1]) outer_minus_AllTranslationInner(); // Opaque green
    color([1, 1, 0, 1]) outer_minus_inner_diff(); // Opaque yellow
    
